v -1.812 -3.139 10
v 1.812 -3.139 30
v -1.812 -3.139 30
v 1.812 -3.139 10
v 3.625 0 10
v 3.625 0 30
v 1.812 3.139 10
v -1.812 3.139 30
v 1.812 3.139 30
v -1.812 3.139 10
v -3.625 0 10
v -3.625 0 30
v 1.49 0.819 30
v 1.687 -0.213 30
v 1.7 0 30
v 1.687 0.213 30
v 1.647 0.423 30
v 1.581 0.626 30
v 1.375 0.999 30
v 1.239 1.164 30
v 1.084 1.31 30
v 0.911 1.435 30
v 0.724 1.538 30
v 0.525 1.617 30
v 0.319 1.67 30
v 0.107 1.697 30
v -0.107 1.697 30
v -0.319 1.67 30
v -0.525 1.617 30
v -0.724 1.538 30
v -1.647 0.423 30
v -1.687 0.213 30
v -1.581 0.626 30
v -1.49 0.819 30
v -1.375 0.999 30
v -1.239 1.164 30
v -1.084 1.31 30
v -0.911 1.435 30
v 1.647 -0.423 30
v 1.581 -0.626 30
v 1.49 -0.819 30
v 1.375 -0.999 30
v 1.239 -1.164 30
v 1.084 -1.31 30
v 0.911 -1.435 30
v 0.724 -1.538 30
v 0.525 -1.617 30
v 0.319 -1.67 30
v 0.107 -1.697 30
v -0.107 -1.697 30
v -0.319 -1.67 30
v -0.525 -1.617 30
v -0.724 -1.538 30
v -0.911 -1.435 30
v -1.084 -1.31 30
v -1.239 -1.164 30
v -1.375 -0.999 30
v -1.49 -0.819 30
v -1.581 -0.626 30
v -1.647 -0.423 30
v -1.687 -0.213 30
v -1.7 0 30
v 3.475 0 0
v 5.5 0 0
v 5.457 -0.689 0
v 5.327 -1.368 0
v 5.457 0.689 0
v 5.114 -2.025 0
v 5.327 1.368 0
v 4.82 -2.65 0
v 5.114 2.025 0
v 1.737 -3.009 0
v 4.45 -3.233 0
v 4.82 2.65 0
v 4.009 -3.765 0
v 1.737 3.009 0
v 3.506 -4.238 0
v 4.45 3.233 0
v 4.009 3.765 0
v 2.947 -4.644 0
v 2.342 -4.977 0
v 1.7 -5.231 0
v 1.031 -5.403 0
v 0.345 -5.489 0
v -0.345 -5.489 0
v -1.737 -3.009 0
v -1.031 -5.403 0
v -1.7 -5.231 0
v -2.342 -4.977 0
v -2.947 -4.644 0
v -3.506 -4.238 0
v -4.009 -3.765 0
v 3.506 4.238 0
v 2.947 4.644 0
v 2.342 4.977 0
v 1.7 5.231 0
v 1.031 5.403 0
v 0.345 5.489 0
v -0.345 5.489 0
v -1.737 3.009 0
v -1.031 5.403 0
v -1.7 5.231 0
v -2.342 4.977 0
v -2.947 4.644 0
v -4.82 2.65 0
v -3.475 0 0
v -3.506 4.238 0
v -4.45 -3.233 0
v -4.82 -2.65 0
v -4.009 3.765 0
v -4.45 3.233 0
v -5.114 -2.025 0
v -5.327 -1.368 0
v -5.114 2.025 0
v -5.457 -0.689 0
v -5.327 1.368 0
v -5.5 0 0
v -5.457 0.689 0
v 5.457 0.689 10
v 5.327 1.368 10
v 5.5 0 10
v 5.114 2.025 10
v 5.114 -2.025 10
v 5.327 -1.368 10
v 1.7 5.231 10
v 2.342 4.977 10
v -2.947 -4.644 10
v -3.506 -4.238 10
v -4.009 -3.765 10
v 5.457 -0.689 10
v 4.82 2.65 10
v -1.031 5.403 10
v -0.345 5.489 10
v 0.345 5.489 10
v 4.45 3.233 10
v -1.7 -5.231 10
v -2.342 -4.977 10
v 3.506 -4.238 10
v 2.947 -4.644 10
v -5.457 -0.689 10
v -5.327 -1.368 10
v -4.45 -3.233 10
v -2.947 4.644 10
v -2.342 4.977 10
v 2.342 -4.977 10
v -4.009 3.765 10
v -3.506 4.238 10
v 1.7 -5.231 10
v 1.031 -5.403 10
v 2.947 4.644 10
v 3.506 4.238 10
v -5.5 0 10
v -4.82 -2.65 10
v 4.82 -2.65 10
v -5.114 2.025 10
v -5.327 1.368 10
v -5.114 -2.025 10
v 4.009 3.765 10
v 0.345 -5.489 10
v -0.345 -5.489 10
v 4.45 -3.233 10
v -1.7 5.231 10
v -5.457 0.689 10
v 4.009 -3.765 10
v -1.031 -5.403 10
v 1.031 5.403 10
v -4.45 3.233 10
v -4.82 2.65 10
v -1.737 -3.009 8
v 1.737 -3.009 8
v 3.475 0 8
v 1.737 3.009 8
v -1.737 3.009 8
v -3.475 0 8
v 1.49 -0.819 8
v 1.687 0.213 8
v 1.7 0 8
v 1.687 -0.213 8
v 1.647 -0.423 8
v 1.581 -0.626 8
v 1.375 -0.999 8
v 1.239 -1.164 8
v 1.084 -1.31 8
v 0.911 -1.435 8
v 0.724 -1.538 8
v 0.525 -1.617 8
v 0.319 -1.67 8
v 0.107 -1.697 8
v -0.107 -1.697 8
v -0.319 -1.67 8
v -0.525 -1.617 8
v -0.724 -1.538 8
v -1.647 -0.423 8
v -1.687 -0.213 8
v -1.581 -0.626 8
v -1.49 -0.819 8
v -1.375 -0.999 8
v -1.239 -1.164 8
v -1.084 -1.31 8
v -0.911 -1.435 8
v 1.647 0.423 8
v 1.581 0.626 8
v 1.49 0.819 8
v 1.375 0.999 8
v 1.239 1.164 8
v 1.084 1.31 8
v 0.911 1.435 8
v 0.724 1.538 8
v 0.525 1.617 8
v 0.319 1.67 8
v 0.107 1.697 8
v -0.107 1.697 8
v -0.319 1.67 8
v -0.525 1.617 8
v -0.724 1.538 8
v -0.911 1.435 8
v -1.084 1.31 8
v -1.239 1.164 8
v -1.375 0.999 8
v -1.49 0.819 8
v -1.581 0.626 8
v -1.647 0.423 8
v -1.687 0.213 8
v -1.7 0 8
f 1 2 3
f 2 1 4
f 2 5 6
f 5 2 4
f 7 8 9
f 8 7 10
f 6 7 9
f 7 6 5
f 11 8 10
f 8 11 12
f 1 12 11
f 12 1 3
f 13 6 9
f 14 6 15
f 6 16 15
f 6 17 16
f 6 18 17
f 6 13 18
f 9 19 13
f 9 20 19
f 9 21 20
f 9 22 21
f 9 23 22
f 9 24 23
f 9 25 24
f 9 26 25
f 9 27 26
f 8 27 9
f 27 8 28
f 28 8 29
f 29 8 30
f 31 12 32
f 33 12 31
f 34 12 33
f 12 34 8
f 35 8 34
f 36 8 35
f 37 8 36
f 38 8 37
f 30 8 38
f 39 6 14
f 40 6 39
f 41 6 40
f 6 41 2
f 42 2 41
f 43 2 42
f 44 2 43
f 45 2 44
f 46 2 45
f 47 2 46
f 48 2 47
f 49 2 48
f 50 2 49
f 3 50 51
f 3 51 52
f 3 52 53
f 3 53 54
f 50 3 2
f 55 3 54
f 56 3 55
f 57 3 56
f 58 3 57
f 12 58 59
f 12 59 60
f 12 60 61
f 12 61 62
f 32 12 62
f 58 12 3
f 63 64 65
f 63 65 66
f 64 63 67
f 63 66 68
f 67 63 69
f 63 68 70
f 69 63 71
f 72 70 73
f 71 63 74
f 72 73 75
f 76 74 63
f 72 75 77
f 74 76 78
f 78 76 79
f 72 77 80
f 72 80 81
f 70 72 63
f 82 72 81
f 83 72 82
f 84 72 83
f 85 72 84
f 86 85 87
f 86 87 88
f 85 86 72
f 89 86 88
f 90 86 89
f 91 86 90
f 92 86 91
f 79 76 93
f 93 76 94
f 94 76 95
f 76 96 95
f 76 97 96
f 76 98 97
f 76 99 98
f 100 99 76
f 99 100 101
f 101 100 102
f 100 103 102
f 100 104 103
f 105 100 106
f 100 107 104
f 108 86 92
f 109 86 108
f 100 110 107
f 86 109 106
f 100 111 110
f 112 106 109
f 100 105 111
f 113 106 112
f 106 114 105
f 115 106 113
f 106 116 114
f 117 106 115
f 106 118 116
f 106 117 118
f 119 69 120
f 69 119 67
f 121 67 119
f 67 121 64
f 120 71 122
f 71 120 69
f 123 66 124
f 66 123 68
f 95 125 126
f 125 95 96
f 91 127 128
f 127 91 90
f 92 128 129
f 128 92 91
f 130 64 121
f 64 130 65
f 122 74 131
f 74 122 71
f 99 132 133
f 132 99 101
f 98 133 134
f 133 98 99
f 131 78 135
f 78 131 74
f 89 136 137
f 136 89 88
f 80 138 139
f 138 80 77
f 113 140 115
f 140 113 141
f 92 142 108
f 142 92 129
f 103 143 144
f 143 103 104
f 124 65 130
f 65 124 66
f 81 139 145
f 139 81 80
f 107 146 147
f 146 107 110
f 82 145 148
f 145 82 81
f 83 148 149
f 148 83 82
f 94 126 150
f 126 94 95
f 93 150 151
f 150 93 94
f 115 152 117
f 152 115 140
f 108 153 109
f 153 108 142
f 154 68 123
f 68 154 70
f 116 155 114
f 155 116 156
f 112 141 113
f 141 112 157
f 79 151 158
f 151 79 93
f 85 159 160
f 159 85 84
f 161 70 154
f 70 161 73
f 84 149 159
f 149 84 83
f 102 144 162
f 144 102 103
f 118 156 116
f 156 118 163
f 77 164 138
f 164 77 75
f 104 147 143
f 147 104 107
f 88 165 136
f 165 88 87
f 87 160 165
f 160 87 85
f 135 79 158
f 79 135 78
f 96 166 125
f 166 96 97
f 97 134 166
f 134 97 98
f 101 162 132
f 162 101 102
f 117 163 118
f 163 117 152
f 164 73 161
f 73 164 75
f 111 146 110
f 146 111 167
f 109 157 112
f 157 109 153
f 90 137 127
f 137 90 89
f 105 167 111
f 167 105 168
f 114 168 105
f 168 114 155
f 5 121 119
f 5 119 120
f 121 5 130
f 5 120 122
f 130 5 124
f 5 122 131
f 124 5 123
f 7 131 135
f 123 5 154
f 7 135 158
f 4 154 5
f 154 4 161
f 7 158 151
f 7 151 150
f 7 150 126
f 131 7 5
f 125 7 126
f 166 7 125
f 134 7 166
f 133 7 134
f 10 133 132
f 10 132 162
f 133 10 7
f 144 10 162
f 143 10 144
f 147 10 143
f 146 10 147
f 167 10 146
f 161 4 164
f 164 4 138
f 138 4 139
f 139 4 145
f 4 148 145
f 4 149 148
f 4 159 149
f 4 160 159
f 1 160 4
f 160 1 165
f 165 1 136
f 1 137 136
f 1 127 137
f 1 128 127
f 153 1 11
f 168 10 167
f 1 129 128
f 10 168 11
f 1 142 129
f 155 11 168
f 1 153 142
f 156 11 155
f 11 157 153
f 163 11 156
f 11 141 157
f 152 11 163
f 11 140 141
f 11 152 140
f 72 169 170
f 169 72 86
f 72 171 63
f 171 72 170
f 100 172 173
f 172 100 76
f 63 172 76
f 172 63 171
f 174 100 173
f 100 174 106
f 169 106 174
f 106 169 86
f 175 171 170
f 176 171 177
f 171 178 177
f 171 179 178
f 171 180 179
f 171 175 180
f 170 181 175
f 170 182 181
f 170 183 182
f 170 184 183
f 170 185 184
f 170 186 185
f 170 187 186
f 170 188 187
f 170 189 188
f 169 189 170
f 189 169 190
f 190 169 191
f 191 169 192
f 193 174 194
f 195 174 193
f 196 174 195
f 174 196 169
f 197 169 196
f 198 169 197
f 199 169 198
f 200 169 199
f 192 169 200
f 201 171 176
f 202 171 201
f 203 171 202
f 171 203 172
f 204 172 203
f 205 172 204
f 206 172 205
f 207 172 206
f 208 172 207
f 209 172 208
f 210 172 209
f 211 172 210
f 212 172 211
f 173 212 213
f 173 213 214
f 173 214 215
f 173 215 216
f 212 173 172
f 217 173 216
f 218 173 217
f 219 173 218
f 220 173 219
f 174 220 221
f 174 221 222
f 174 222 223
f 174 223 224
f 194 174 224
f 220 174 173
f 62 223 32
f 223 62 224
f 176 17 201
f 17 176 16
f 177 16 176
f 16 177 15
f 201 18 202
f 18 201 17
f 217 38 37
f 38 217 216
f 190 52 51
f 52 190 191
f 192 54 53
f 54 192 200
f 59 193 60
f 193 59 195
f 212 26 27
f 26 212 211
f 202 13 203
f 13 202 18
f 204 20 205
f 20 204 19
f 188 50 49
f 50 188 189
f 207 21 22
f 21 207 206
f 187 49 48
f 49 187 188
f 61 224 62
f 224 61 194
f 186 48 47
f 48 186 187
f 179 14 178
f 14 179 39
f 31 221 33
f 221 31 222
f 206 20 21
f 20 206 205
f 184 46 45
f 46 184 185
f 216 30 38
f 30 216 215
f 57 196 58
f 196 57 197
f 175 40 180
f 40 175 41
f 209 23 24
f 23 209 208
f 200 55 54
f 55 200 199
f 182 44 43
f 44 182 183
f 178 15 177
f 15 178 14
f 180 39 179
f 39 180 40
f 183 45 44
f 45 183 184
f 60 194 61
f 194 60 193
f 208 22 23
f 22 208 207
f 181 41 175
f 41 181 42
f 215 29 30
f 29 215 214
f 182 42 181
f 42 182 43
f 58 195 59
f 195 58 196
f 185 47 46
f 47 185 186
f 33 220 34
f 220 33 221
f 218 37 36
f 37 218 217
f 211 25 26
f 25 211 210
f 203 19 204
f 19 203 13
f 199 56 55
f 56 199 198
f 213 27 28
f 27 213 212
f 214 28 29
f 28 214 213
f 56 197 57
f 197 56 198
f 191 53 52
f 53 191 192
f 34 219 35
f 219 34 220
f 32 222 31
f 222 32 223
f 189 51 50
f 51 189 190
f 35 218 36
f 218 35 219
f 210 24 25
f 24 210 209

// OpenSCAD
/* M3 Socket driver bit
 * Copyright 2021 Alex Volkov <alex@flamy.ca>
 * License: Attribution-ShareAlike 4.0 International (CC BY-SA)
 * https://creativecommons.org/licenses/by-sa/4.0/
 */
include <../libs/hardware-recess.scad>;

TOTAL_LEN=30;
SOCKET_LEN=10;
difference(){
    union(){
        cylinder(d=7.25, h=TOTAL_LEN, $fn=6);
        cylinder(d=11, h=SOCKET_LEN, $fn=50);
    }
    cylinder(d=M_DIM[M3][3] + 0.25 , h=SOCKET_LEN - 2, $fn=6);
    cylinder(d=3.4, h=TOTAL_LEN, $fn=50);
}
